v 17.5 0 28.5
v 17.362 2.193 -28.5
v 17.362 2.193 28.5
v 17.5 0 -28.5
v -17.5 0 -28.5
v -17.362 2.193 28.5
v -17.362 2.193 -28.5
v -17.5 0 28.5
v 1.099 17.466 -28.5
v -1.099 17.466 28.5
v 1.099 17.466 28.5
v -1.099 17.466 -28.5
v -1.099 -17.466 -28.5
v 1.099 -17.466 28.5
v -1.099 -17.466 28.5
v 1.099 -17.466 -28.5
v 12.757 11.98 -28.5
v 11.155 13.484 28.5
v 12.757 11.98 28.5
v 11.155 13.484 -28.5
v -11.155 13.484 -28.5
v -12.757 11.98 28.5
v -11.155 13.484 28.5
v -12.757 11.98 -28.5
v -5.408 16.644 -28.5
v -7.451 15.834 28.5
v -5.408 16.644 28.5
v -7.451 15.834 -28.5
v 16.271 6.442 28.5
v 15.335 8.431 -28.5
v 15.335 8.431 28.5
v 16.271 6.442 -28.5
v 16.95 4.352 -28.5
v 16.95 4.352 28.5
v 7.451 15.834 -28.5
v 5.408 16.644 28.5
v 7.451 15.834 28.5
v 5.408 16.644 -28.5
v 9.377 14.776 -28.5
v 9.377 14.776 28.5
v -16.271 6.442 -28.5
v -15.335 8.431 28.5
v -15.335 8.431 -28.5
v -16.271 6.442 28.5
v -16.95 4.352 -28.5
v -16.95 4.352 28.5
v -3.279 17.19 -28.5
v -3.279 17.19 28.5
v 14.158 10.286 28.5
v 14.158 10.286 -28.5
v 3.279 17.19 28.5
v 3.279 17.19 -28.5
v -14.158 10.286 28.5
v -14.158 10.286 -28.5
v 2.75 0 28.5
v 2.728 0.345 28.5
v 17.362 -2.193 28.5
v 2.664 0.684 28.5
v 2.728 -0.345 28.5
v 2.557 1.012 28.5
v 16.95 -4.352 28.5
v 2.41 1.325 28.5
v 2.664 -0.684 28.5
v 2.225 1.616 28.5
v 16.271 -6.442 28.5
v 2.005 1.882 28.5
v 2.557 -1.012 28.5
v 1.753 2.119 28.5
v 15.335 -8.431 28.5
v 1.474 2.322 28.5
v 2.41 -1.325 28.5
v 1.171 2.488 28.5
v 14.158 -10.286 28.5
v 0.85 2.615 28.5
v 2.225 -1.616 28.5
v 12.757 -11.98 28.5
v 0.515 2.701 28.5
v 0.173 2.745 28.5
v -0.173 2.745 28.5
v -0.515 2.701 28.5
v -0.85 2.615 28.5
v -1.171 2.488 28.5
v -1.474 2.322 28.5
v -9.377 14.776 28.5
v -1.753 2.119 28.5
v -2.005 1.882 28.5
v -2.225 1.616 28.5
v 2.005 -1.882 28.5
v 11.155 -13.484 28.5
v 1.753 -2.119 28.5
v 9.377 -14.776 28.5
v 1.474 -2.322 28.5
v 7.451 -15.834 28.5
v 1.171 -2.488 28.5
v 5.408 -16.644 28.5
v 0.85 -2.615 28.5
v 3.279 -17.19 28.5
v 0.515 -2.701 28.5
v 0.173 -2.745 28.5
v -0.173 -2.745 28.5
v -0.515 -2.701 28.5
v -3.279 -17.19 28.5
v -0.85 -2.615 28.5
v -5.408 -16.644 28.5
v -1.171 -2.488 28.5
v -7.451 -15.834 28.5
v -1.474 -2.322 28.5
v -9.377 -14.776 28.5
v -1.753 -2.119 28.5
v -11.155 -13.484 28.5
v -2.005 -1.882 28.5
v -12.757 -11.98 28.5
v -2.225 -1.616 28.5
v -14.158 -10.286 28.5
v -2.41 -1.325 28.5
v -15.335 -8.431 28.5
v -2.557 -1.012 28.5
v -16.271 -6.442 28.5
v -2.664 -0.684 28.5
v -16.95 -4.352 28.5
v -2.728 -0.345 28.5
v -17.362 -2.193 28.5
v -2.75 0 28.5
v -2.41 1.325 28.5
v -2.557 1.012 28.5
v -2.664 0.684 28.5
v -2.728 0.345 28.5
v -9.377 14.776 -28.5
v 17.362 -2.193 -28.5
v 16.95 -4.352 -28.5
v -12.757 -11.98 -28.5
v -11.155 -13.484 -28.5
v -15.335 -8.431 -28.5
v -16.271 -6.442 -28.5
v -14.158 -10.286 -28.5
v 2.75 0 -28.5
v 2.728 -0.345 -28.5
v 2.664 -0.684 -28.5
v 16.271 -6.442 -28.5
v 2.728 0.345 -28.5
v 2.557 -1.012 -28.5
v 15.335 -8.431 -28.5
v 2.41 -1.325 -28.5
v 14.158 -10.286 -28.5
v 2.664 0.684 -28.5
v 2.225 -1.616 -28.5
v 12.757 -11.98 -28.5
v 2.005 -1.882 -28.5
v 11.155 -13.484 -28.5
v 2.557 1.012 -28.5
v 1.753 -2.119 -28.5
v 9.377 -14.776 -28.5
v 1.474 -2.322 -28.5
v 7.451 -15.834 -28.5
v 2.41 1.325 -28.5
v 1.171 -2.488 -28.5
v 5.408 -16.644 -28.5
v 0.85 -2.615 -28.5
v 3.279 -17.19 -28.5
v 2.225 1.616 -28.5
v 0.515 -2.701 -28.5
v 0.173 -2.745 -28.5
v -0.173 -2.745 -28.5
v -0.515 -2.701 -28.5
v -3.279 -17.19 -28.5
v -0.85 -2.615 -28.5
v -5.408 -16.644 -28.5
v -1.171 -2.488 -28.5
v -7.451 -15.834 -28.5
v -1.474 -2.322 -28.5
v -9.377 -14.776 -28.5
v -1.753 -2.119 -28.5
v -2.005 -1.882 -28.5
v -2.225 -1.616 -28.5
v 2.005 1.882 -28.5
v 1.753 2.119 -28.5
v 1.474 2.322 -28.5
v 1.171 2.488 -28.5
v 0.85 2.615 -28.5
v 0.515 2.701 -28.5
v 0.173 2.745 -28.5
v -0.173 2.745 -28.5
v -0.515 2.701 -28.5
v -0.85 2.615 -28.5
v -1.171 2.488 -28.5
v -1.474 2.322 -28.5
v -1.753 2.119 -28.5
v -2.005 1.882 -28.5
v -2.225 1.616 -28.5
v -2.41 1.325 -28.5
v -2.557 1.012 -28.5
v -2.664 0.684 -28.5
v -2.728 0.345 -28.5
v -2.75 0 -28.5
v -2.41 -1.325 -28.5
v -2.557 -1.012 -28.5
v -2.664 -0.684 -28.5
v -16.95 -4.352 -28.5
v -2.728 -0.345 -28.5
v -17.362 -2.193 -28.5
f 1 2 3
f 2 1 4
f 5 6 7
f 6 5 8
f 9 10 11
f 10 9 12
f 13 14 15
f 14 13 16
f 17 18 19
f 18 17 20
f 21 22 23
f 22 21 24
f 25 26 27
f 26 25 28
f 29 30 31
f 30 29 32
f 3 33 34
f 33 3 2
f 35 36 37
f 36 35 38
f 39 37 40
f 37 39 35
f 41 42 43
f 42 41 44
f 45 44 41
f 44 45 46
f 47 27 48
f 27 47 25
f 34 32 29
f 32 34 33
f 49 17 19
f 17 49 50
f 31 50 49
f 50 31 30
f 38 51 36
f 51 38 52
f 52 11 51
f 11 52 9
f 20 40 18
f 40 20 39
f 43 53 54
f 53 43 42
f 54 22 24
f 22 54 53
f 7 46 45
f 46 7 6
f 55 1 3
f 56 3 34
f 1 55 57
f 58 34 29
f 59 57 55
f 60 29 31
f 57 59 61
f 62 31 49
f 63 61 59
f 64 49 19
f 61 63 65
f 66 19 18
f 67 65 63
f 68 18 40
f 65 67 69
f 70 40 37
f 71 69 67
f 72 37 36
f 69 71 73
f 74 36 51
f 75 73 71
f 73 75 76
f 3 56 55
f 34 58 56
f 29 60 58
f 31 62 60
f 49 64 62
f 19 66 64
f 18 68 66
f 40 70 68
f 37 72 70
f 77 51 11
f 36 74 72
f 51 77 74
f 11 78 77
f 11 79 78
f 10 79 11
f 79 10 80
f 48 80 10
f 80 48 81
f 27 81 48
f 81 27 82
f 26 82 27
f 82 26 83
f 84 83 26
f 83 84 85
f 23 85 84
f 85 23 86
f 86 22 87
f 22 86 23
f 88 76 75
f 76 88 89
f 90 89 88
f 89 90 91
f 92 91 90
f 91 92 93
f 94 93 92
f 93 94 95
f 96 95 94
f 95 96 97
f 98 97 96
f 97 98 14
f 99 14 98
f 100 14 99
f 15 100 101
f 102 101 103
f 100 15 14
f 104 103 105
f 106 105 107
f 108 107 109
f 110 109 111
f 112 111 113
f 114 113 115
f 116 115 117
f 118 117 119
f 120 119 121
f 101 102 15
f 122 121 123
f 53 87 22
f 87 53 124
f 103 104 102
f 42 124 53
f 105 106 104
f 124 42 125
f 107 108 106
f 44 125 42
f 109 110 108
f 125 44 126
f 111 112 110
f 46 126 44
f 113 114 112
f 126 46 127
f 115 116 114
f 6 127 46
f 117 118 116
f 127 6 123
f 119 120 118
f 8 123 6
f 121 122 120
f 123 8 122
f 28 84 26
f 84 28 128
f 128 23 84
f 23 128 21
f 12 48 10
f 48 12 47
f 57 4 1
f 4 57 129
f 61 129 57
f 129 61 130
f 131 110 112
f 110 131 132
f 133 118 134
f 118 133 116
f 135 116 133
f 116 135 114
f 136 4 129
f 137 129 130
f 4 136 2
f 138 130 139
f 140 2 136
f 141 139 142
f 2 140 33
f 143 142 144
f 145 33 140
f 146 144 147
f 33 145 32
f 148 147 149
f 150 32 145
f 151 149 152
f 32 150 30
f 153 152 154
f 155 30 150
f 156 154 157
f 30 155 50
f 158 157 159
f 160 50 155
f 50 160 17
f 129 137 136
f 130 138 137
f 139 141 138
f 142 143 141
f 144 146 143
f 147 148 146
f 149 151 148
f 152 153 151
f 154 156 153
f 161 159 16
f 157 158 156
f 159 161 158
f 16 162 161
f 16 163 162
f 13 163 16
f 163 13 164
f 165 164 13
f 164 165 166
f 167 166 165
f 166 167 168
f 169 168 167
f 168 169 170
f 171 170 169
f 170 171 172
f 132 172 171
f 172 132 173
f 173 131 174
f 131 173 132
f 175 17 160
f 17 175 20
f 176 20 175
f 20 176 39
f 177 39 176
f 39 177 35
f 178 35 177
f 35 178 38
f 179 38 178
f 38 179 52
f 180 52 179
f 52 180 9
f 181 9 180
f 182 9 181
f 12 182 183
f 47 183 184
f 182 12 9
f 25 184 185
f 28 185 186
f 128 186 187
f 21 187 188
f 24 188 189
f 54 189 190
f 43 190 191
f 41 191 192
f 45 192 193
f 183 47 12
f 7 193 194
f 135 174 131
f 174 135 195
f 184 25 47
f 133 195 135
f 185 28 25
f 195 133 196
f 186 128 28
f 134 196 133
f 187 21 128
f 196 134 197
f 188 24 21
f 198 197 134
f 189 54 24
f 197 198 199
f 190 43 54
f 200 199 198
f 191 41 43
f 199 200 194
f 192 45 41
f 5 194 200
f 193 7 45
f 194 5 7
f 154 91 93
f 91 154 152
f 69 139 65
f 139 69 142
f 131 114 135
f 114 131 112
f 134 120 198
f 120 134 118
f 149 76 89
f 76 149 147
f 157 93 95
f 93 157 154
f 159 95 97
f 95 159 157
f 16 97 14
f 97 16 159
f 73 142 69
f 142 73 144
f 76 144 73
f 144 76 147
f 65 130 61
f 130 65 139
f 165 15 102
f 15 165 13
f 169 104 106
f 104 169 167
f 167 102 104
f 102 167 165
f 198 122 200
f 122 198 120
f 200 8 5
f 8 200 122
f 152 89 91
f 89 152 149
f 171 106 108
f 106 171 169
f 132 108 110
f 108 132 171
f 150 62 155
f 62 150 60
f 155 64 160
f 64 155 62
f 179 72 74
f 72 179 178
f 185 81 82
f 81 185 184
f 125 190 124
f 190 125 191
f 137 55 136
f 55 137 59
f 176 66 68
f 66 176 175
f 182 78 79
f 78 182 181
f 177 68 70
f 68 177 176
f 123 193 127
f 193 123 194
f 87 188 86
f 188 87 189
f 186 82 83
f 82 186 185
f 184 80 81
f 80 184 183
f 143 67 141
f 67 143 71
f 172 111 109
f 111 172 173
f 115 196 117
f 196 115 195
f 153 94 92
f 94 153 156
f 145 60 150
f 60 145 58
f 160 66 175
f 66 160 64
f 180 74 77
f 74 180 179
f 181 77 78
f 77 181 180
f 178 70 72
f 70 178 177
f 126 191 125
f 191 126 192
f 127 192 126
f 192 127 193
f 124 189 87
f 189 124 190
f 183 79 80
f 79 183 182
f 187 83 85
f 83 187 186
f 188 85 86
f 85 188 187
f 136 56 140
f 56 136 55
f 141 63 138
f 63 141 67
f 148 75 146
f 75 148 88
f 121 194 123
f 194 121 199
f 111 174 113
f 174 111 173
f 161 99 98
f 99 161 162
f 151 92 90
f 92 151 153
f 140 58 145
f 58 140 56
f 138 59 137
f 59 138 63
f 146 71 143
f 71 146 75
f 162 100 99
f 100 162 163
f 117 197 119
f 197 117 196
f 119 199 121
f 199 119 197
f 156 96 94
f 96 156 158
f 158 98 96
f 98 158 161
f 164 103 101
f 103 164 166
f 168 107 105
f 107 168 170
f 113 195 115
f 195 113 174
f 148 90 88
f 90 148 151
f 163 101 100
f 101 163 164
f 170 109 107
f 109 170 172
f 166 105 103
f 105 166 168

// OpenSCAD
$fn = 50;


difference() {
	union() {
		translate(v = [0, 0, -28.5000000000]) {
			cylinder(h = 57, r = 17.5000000000);
		}
	}
	union() {
		translate(v = [0, 0, -100.0000000000]) {
			cylinder(h = 200, r = 2.7500000000);
		}
	}
}
